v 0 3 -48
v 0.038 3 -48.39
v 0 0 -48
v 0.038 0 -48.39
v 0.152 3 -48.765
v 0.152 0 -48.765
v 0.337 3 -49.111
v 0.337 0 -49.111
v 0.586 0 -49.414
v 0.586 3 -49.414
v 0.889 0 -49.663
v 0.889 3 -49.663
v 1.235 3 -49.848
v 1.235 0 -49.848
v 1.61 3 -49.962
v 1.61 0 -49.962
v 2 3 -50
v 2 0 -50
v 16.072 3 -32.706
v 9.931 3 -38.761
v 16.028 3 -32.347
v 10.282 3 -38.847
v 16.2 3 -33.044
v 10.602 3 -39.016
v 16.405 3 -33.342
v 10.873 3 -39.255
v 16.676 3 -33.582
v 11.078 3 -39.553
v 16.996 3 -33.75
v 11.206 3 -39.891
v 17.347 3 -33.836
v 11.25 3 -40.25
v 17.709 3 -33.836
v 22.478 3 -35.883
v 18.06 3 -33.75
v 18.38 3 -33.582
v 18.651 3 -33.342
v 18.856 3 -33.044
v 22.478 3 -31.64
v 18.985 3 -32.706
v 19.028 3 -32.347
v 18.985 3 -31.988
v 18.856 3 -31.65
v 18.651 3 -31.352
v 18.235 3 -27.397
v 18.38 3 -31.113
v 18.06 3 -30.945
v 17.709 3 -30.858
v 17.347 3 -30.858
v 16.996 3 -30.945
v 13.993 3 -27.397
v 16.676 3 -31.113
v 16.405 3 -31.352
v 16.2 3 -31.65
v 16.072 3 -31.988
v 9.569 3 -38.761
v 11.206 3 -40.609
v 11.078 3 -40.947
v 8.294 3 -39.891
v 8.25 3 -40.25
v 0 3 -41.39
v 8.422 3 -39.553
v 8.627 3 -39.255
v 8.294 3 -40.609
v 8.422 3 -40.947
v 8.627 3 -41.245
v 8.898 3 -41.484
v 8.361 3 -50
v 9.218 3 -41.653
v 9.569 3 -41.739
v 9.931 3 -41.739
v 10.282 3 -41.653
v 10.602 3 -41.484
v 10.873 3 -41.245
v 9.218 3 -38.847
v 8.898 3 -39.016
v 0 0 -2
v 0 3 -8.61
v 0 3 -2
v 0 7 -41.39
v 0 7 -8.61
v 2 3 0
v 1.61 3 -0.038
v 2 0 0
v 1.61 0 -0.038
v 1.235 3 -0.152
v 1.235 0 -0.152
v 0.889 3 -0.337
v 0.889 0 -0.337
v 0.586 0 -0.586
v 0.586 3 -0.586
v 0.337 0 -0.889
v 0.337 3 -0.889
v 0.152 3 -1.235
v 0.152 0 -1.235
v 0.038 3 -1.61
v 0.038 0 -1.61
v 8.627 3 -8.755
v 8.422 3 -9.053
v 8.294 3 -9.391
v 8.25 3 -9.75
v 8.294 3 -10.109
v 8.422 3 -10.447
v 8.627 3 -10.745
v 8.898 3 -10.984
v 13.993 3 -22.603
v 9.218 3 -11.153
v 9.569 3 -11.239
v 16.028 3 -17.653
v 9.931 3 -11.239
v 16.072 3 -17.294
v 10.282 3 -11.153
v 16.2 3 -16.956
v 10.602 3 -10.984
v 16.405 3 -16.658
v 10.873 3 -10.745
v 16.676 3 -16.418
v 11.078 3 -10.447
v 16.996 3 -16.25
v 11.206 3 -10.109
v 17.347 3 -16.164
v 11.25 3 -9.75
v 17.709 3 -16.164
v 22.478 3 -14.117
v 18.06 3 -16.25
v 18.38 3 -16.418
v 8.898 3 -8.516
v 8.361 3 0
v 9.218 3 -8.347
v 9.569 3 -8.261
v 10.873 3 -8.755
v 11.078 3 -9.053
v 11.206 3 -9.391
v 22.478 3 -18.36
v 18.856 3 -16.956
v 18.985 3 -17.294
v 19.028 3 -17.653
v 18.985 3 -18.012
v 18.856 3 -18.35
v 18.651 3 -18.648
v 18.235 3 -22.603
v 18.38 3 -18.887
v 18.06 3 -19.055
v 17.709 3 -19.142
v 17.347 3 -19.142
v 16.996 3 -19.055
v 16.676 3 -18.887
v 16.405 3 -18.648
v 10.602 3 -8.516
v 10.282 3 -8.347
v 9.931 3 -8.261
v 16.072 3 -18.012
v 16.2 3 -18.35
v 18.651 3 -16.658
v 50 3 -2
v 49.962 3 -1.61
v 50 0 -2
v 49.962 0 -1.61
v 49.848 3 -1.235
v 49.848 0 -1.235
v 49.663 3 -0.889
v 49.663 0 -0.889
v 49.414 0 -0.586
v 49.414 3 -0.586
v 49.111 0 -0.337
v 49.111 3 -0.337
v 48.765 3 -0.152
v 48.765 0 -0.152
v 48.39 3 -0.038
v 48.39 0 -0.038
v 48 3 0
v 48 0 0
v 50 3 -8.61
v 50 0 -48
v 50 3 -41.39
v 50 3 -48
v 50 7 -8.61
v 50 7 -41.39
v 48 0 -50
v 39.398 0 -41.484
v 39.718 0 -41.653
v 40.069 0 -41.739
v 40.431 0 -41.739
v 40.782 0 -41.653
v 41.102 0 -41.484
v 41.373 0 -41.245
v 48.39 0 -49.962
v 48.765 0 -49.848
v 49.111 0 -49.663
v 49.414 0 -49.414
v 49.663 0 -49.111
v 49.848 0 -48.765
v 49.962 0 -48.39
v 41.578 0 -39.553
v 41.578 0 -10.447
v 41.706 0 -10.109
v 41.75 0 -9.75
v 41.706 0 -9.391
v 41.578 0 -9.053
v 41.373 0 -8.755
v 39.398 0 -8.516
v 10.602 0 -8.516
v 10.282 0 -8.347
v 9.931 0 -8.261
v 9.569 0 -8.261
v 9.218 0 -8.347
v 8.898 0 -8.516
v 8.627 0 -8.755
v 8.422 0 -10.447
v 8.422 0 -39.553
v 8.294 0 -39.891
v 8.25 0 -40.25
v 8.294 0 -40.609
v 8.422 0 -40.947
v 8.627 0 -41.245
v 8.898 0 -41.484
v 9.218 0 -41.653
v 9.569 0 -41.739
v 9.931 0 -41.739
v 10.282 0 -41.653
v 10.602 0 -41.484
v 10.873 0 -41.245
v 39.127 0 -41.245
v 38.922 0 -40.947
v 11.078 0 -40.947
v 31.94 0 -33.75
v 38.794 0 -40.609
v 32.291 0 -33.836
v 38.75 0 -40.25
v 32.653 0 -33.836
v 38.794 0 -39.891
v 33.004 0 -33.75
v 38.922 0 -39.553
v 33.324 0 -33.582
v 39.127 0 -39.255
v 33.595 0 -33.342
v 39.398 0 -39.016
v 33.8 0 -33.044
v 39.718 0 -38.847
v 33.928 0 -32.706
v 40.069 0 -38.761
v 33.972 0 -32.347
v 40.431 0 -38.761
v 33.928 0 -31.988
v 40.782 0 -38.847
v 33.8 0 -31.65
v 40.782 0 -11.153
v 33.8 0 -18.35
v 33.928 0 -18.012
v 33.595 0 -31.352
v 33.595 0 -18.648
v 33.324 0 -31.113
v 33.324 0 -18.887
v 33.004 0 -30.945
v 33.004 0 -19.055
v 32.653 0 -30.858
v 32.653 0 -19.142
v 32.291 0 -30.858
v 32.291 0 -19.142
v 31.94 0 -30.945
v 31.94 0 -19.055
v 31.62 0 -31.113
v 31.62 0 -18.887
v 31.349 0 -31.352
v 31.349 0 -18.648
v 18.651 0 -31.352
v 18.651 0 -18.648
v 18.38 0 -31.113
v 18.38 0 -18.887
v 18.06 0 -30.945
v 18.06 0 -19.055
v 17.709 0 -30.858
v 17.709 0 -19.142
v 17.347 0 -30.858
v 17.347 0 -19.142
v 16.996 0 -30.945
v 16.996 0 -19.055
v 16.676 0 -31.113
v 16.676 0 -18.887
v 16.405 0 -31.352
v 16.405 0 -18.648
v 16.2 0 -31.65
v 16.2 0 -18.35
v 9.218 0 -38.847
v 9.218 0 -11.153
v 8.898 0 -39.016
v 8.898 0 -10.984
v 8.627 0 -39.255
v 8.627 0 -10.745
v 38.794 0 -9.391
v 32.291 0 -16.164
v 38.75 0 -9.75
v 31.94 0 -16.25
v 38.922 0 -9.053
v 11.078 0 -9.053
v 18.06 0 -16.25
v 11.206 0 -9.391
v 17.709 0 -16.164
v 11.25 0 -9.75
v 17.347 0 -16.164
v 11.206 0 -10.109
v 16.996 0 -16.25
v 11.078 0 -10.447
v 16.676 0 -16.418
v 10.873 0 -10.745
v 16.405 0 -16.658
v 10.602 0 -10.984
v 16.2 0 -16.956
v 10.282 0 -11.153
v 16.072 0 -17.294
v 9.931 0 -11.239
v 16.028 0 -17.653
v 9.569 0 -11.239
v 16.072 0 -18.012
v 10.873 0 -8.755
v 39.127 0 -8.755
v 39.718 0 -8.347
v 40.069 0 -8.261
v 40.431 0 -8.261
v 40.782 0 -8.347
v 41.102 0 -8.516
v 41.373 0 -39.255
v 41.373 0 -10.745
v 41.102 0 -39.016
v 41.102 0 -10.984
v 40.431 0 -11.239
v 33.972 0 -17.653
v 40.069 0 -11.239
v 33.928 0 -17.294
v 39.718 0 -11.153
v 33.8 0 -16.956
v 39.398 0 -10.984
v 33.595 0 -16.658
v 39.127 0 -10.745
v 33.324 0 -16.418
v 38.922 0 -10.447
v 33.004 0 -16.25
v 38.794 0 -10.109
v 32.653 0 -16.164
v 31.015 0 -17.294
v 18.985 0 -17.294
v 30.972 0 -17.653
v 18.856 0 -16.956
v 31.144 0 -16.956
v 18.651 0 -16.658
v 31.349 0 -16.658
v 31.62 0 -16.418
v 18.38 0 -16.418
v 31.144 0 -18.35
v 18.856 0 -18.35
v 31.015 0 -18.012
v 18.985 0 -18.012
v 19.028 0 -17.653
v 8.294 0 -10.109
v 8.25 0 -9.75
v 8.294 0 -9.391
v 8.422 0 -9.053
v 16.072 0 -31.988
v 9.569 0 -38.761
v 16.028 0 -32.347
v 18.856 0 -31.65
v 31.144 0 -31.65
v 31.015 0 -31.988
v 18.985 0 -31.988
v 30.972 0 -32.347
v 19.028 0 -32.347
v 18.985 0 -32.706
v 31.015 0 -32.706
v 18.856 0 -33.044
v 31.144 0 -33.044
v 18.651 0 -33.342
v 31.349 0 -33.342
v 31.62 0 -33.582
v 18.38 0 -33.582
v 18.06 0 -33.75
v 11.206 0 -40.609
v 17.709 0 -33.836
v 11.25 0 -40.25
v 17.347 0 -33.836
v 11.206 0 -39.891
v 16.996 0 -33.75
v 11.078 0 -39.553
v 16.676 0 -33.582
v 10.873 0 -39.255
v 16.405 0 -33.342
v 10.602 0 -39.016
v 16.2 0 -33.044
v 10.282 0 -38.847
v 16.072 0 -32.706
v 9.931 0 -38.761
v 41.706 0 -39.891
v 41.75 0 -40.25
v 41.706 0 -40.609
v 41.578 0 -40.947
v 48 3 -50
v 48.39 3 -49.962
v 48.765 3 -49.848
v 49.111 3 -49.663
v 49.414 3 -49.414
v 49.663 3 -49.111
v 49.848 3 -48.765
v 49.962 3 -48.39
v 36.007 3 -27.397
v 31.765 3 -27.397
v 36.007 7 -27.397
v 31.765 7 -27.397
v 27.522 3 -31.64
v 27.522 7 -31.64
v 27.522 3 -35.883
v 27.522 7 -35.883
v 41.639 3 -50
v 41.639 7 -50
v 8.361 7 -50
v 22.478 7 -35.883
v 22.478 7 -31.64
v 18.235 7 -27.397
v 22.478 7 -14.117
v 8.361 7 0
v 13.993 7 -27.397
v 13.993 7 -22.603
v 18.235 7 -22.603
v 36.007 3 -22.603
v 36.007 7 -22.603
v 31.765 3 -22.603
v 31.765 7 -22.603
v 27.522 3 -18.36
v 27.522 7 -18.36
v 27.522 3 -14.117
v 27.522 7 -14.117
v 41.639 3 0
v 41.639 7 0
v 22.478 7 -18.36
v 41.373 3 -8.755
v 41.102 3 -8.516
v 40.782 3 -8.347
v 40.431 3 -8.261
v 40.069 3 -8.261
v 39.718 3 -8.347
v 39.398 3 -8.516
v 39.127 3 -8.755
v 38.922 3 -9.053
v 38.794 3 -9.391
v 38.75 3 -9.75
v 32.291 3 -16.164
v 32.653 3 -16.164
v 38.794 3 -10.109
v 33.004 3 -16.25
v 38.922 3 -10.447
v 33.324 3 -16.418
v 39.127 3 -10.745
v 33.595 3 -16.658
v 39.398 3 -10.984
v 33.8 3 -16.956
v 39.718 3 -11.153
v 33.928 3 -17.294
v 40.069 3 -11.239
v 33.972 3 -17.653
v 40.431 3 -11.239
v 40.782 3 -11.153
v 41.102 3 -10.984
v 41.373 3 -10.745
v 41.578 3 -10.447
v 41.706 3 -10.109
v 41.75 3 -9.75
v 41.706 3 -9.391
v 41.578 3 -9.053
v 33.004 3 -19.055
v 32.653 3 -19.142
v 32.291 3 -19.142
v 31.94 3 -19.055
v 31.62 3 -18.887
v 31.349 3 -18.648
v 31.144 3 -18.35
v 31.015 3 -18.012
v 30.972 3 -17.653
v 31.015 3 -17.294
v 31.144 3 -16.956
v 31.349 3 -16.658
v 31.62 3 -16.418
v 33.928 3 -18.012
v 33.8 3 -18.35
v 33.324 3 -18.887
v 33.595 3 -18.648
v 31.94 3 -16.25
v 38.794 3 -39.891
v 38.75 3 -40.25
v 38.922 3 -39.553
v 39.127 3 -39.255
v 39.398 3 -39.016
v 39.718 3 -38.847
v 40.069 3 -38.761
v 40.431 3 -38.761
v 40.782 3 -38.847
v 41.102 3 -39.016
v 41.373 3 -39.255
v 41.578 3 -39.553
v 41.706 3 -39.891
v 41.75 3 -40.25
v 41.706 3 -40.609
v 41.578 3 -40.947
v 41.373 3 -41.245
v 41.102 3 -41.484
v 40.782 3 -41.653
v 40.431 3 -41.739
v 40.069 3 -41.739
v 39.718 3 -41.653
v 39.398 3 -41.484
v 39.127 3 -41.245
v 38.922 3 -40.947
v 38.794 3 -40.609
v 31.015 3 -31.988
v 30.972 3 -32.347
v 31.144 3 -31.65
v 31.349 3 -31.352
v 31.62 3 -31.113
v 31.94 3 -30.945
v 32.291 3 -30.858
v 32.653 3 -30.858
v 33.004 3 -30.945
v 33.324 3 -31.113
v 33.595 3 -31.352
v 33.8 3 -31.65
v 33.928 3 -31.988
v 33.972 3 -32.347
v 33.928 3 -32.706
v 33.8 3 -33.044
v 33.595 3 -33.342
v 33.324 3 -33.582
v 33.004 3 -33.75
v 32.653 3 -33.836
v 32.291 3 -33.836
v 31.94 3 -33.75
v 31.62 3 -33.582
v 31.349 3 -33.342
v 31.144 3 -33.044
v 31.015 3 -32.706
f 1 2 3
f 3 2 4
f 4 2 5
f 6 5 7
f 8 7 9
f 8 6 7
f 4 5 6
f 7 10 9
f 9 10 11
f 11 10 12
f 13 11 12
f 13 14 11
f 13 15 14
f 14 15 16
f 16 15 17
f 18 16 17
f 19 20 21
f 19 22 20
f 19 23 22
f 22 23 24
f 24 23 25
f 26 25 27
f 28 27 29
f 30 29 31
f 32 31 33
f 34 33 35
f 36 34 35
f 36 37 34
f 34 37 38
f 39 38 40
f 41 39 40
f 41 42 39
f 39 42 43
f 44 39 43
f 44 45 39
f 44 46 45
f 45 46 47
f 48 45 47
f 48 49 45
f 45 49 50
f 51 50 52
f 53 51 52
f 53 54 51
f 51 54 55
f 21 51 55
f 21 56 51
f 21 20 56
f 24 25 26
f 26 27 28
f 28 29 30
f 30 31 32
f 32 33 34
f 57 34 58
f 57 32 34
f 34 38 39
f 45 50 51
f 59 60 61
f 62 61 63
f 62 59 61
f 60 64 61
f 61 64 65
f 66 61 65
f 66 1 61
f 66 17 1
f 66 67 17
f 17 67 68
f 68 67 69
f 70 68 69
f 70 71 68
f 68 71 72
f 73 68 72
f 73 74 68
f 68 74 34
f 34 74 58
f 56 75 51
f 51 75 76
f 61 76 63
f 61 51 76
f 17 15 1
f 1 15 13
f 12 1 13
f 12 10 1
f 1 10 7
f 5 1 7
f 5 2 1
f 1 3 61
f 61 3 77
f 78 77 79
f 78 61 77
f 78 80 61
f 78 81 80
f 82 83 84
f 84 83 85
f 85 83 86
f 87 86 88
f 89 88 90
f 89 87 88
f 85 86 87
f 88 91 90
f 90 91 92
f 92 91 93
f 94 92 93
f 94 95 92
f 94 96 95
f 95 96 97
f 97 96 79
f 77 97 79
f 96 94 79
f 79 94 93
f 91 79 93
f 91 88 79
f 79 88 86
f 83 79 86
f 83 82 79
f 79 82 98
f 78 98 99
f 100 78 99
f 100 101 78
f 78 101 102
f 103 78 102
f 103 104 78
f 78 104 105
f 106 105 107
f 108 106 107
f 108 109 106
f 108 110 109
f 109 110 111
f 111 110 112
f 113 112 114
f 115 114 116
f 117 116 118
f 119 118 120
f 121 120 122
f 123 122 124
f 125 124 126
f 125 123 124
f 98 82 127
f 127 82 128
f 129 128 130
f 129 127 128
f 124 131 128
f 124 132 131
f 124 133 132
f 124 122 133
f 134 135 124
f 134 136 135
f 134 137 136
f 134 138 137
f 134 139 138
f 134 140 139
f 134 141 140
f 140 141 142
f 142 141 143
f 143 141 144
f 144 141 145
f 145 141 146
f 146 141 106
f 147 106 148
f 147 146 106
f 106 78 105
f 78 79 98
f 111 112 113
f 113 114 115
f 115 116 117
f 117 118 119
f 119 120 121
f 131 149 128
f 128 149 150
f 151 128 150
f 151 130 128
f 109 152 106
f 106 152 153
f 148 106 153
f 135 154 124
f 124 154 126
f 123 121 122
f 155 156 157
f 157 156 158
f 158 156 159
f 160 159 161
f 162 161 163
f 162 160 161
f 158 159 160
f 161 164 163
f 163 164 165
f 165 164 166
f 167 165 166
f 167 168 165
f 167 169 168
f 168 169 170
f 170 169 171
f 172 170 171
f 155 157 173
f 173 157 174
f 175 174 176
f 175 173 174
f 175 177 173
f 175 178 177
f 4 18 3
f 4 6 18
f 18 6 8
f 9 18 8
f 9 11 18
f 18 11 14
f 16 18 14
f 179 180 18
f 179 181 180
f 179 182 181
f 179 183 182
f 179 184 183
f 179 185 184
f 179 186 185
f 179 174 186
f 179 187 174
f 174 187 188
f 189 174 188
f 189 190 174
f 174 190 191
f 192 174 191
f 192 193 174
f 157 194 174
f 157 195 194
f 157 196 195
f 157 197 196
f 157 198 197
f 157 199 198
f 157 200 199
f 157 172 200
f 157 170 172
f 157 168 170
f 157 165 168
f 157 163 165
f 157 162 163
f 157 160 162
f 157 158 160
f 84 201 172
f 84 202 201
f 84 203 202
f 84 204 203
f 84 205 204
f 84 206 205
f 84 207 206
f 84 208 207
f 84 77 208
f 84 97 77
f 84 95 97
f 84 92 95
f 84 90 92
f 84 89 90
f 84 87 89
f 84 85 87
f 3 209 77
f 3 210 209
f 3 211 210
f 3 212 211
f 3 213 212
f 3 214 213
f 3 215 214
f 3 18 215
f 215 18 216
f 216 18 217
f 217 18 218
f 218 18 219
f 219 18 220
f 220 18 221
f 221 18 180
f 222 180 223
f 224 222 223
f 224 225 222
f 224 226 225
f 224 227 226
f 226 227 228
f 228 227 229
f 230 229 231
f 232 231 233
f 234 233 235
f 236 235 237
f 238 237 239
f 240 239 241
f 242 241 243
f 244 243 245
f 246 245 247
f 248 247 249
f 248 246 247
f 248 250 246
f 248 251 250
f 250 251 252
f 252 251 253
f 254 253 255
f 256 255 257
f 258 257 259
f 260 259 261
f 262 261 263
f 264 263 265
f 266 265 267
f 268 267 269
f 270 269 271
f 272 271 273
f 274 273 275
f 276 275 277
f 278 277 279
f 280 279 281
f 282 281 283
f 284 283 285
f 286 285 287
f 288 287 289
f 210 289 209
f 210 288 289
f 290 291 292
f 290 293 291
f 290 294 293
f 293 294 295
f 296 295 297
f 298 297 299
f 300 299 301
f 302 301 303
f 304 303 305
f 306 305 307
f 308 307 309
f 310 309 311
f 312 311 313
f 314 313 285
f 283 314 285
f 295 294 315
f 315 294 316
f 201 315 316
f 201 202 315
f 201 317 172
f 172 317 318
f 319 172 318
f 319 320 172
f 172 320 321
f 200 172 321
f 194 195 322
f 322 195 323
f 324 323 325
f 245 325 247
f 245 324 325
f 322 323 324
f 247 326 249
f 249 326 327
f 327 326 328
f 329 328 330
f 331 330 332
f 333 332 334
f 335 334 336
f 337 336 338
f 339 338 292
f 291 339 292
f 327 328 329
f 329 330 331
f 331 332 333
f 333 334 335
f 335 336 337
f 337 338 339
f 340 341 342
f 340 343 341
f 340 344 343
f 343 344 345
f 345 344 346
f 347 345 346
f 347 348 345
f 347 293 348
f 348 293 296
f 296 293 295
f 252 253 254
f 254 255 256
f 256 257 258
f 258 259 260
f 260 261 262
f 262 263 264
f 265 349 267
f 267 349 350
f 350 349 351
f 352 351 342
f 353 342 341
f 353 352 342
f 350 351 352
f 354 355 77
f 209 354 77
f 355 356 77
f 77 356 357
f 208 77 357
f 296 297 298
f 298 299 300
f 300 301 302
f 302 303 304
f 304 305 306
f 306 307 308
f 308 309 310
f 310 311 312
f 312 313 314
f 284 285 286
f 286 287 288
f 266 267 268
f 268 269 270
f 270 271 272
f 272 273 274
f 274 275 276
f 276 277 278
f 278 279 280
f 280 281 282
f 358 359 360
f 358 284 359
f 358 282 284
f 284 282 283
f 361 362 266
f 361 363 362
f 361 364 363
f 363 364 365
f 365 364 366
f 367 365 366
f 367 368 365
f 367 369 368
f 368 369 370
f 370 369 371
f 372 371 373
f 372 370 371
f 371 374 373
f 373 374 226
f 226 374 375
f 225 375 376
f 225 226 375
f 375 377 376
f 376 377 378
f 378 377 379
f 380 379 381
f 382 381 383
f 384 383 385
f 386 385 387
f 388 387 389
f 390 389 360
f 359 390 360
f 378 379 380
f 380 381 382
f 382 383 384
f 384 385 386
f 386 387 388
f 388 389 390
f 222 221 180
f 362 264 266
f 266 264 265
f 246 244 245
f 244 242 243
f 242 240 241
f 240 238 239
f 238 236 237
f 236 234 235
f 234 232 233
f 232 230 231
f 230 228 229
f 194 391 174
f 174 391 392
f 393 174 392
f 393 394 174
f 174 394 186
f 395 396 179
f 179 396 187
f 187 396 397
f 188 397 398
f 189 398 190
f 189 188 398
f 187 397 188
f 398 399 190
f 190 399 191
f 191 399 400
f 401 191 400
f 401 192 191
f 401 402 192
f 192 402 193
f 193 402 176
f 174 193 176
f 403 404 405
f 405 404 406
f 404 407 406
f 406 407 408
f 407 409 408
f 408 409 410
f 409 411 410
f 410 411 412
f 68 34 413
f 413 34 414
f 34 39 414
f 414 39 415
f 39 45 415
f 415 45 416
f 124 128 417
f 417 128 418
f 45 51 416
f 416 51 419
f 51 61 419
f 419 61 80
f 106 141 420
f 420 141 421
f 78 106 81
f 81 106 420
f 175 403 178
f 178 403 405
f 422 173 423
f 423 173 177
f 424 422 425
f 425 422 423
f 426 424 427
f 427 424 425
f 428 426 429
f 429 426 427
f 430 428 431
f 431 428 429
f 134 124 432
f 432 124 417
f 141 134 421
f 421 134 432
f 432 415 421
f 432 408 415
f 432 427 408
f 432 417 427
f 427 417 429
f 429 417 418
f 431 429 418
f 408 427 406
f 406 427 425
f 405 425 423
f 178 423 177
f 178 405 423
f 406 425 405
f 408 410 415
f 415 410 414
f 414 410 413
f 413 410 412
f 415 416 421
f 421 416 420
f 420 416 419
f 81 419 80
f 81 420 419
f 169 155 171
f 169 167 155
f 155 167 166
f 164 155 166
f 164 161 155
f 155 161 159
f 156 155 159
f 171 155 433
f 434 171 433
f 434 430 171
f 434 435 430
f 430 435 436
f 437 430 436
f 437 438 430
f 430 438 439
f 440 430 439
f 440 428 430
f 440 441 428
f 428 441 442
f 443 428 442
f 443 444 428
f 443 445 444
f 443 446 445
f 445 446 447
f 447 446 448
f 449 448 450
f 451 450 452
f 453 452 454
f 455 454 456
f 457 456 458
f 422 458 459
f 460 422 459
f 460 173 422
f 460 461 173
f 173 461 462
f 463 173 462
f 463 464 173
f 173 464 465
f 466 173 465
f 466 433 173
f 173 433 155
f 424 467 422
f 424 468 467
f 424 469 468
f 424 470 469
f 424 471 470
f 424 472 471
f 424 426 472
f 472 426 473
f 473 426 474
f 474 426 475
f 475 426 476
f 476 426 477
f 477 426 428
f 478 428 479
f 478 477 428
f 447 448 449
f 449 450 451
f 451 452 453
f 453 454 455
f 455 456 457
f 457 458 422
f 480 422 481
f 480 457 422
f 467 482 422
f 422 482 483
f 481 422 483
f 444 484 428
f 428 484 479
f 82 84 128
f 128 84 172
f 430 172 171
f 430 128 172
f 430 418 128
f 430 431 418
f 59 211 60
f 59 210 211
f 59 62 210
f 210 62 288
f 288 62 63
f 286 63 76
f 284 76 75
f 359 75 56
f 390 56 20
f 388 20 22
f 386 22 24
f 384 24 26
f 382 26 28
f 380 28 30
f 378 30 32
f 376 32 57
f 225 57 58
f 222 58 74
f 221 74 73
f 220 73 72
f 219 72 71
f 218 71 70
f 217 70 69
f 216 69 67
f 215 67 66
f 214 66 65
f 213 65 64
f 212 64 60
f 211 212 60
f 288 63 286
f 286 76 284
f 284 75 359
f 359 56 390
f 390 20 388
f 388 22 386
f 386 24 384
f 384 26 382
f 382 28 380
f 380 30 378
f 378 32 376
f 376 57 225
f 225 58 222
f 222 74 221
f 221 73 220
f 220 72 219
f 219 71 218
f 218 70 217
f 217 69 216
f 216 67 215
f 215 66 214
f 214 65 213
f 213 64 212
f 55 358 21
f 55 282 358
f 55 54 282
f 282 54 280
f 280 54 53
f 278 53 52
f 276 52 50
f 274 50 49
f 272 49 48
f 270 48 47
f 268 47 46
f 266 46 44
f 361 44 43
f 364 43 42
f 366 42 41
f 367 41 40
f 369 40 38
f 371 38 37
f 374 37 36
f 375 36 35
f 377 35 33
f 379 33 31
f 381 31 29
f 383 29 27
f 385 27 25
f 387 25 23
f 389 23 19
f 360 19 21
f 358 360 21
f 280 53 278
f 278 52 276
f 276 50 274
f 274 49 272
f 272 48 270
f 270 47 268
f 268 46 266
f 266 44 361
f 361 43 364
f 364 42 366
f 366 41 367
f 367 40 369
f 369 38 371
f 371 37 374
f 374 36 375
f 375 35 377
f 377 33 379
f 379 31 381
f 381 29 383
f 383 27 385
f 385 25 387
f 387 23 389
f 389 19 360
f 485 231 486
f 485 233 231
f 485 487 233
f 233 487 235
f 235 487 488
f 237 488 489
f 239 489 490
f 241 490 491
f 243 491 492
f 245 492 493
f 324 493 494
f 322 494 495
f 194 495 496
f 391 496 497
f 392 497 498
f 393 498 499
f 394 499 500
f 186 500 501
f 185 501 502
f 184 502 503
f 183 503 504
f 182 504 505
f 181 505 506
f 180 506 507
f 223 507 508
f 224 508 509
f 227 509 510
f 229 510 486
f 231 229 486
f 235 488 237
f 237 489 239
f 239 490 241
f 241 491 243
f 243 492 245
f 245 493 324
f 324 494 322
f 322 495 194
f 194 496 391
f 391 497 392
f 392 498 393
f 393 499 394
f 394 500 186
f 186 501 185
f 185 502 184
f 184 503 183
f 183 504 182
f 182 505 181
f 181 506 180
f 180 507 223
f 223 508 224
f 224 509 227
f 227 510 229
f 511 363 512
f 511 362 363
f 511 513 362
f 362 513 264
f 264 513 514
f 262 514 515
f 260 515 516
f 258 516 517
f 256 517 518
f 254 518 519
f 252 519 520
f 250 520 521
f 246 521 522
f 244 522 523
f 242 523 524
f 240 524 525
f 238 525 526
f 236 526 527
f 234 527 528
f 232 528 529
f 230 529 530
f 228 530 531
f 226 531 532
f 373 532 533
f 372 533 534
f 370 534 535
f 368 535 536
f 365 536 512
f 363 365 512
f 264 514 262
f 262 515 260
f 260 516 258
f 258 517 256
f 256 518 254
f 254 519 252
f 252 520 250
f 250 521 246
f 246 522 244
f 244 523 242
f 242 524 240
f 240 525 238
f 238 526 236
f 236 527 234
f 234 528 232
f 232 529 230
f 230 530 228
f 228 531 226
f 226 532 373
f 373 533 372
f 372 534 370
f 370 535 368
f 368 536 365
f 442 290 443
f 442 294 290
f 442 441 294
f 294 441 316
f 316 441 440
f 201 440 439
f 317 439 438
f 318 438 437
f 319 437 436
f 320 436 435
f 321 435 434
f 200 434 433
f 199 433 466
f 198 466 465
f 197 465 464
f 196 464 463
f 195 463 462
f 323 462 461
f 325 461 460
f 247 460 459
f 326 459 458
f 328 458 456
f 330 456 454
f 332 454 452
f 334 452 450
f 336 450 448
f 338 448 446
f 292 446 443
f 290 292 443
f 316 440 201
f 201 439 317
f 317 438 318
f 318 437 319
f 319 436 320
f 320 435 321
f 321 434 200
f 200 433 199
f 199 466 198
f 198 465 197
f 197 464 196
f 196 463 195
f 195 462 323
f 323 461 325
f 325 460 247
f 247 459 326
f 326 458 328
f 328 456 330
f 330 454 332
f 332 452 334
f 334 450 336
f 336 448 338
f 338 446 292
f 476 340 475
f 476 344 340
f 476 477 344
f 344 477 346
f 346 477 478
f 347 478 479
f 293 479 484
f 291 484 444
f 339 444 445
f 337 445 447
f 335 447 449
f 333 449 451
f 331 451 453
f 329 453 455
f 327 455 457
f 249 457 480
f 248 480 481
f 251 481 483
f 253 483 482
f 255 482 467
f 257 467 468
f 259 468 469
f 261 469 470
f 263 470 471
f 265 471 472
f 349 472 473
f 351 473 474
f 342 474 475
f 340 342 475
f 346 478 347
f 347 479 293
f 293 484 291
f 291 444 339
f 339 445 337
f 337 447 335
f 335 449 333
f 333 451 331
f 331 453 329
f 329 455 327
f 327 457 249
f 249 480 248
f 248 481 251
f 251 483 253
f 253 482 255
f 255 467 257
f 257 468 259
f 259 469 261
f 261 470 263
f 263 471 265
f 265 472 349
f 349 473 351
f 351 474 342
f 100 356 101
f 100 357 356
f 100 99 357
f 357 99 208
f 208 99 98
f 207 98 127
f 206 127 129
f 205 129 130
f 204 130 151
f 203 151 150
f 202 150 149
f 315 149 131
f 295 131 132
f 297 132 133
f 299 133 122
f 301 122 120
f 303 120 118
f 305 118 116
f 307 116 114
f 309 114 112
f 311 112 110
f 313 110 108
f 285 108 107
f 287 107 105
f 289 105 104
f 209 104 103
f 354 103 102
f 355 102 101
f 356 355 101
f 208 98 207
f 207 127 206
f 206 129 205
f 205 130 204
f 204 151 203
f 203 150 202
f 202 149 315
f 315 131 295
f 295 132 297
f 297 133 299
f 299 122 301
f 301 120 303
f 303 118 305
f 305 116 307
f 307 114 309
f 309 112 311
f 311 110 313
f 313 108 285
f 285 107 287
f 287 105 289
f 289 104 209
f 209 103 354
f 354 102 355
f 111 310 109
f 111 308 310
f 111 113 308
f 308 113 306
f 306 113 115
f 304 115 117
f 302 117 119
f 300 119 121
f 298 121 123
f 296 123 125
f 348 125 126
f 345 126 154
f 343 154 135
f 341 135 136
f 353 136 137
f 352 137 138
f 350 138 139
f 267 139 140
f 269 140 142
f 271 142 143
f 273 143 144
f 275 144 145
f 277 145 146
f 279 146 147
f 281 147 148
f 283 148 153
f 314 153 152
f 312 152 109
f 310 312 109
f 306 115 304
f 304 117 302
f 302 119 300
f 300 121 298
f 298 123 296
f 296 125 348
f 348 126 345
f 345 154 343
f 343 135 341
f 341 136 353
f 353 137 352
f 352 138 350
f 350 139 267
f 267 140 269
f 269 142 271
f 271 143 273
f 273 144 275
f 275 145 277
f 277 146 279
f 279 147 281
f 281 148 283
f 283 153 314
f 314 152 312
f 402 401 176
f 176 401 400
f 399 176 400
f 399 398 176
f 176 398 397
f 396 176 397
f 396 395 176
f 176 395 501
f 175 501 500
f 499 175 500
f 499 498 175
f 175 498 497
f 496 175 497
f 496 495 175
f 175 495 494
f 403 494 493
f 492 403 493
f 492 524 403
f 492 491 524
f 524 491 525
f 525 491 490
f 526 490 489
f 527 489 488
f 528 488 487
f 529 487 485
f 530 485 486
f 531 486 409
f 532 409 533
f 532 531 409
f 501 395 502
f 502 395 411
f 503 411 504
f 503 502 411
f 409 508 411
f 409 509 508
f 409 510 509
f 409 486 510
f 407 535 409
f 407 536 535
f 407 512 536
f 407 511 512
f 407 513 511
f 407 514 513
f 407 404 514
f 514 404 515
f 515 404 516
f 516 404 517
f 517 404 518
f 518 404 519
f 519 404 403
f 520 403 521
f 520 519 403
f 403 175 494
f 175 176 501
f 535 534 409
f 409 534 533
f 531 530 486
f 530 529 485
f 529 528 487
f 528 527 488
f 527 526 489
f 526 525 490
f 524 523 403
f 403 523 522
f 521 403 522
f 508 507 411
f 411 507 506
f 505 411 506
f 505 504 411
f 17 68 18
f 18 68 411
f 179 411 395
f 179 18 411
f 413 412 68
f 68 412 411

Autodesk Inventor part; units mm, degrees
ref_plane "YZ Plane" through (0, 0, 0) normal (1, 0, 0) x (0, 1, 0)
ref_plane "XZ Plane" through (0, 0, 0) normal (0, 1, 0) x (-1, 0, 0)
ref_plane "XY Plane" through (0, 0, 0) normal (0, 0, 1) x (1, 0, 0)
sketch "Grund" plane through (0, 0, 0) normal (0, 1, 0) x (-1, 0, 0)
  line L0 (-43, -43) -> (-7, -43)
  line L1 (-7, -43) -> (-7, -7)
  line L2 (-22.4779, -14.1174) -> (-8.3606, 0)
  line L3 (0, -8.61) -> (-13.9926, -22.6026)
  circle A0 centre (-32.4718, -17.6529) radius 1.5
  line L4 (-18.2353, -22.6026) -> (-22.4779, -18.36)
  line L5 (-22.4779, -14.1174) -> (-22.4779, -18.36)
  line L6 (-13.9926, -22.6026) -> (-18.2353, -22.6026)
  line L7 (-27.5221, -14.1174) -> (-27.5221, -18.36)
  line L8 (-31.7647, -22.6026) -> (-27.5221, -18.36)
  line L9 (-27.5221, -14.1174) -> (-41.6394, 0)
  line L10 (-36.0074, -22.6026) -> (-31.7647, -22.6026)
  line L11 (-50, -8.61) -> (-36.0074, -22.6026)
  line L12 (-27.5221, -35.8826) -> (-27.5221, -31.64)
  line L13 (-27.5221, -35.8826) -> (-41.6394, -50)
  line L14 (-36.0074, -27.3974) -> (-31.7647, -27.3974)
  line L15 (-31.7647, -27.3974) -> (-27.5221, -31.64)
  line L16 (-50, -41.39) -> (-36.0074, -27.3974)
  line L17 (-22.4779, -35.8826) -> (-22.4779, -31.64)
  line L18 (-22.4779, -35.8826) -> (-8.3606, -50)
  line L19 (-18.2353, -27.3974) -> (-22.4779, -31.64)
  line L20 (0, -41.39) -> (-13.9926, -27.3974)
  line L21 (-13.9926, -27.3974) -> (-18.2353, -27.3974)
  circle A1 centre (-32.4718, -32.3471) radius 1.5
  circle A2 centre (-40.25, -40.25) radius 1.5
  line L22 (-43, -7) -> (-43, -43)
  circle A3 centre (-17.5282, -17.6529) radius 1.5
  circle A4 centre (-17.5282, -32.3471) radius 1.5
  circle A5 centre (-9.75, -40.25) radius 1.5
  line L23 (-7, -7) -> (-43, -7)
  circle A6 centre (-9.75, -9.75) radius 1.5
  circle A7 centre (-40.25, -9.75) radius 1.5
  line L24 (0, 0) -> (0, -50)
  line L25 (0, -50) -> (-50, -50)
  line L26 (-50, -50) -> (-50, 0)
  line L27 (-50, 0) -> (0, 0)
  point P0 (-16.114, -25.276)
  point P1 (-24.5992, -33.7613)
  point P2 (-25.4008, -33.7613)
  point P3 (-33.886, -25.276)
  point P4 (-25.4008, -16.2387)
  point P5 (-33.886, -24.724)
  point P6 (-24.5992, -16.2387)
  point P7 (-16.114, -24.724)
  dimension "d0" = 36
  dimension "d1" = 36
  dimension "d4" = 3
  dimension "d5" = 3
  dimension "d6" = 3
  dimension "d7" = 3
  dimension "d9" = 50
  dimension "d10" = 50
extrude "Extrusion1" add sketch "Grund" along normal blind 3
extrude "Extrusion2" add sketch "Grund" along normal blind 7 contours L13 L12 L15 L14 L16 L22 L11 L10 L8 L7 L9 L23 L2 L5 L4 L6 L3 L1 L20 L21 L19 L17 L18 L0 | L0 L18 L25 L13 | L16 L26 L11 L22 | L1 L3 L24 L20 | L9 L27 L2 L23
fillet "Fillet1" radius 2 4 edges at (50, 1.5, -50) (50, 1.5, 0) (0, 1.5, 0) (0, 1.5, -50)
properties part number "Bot 2.1"
